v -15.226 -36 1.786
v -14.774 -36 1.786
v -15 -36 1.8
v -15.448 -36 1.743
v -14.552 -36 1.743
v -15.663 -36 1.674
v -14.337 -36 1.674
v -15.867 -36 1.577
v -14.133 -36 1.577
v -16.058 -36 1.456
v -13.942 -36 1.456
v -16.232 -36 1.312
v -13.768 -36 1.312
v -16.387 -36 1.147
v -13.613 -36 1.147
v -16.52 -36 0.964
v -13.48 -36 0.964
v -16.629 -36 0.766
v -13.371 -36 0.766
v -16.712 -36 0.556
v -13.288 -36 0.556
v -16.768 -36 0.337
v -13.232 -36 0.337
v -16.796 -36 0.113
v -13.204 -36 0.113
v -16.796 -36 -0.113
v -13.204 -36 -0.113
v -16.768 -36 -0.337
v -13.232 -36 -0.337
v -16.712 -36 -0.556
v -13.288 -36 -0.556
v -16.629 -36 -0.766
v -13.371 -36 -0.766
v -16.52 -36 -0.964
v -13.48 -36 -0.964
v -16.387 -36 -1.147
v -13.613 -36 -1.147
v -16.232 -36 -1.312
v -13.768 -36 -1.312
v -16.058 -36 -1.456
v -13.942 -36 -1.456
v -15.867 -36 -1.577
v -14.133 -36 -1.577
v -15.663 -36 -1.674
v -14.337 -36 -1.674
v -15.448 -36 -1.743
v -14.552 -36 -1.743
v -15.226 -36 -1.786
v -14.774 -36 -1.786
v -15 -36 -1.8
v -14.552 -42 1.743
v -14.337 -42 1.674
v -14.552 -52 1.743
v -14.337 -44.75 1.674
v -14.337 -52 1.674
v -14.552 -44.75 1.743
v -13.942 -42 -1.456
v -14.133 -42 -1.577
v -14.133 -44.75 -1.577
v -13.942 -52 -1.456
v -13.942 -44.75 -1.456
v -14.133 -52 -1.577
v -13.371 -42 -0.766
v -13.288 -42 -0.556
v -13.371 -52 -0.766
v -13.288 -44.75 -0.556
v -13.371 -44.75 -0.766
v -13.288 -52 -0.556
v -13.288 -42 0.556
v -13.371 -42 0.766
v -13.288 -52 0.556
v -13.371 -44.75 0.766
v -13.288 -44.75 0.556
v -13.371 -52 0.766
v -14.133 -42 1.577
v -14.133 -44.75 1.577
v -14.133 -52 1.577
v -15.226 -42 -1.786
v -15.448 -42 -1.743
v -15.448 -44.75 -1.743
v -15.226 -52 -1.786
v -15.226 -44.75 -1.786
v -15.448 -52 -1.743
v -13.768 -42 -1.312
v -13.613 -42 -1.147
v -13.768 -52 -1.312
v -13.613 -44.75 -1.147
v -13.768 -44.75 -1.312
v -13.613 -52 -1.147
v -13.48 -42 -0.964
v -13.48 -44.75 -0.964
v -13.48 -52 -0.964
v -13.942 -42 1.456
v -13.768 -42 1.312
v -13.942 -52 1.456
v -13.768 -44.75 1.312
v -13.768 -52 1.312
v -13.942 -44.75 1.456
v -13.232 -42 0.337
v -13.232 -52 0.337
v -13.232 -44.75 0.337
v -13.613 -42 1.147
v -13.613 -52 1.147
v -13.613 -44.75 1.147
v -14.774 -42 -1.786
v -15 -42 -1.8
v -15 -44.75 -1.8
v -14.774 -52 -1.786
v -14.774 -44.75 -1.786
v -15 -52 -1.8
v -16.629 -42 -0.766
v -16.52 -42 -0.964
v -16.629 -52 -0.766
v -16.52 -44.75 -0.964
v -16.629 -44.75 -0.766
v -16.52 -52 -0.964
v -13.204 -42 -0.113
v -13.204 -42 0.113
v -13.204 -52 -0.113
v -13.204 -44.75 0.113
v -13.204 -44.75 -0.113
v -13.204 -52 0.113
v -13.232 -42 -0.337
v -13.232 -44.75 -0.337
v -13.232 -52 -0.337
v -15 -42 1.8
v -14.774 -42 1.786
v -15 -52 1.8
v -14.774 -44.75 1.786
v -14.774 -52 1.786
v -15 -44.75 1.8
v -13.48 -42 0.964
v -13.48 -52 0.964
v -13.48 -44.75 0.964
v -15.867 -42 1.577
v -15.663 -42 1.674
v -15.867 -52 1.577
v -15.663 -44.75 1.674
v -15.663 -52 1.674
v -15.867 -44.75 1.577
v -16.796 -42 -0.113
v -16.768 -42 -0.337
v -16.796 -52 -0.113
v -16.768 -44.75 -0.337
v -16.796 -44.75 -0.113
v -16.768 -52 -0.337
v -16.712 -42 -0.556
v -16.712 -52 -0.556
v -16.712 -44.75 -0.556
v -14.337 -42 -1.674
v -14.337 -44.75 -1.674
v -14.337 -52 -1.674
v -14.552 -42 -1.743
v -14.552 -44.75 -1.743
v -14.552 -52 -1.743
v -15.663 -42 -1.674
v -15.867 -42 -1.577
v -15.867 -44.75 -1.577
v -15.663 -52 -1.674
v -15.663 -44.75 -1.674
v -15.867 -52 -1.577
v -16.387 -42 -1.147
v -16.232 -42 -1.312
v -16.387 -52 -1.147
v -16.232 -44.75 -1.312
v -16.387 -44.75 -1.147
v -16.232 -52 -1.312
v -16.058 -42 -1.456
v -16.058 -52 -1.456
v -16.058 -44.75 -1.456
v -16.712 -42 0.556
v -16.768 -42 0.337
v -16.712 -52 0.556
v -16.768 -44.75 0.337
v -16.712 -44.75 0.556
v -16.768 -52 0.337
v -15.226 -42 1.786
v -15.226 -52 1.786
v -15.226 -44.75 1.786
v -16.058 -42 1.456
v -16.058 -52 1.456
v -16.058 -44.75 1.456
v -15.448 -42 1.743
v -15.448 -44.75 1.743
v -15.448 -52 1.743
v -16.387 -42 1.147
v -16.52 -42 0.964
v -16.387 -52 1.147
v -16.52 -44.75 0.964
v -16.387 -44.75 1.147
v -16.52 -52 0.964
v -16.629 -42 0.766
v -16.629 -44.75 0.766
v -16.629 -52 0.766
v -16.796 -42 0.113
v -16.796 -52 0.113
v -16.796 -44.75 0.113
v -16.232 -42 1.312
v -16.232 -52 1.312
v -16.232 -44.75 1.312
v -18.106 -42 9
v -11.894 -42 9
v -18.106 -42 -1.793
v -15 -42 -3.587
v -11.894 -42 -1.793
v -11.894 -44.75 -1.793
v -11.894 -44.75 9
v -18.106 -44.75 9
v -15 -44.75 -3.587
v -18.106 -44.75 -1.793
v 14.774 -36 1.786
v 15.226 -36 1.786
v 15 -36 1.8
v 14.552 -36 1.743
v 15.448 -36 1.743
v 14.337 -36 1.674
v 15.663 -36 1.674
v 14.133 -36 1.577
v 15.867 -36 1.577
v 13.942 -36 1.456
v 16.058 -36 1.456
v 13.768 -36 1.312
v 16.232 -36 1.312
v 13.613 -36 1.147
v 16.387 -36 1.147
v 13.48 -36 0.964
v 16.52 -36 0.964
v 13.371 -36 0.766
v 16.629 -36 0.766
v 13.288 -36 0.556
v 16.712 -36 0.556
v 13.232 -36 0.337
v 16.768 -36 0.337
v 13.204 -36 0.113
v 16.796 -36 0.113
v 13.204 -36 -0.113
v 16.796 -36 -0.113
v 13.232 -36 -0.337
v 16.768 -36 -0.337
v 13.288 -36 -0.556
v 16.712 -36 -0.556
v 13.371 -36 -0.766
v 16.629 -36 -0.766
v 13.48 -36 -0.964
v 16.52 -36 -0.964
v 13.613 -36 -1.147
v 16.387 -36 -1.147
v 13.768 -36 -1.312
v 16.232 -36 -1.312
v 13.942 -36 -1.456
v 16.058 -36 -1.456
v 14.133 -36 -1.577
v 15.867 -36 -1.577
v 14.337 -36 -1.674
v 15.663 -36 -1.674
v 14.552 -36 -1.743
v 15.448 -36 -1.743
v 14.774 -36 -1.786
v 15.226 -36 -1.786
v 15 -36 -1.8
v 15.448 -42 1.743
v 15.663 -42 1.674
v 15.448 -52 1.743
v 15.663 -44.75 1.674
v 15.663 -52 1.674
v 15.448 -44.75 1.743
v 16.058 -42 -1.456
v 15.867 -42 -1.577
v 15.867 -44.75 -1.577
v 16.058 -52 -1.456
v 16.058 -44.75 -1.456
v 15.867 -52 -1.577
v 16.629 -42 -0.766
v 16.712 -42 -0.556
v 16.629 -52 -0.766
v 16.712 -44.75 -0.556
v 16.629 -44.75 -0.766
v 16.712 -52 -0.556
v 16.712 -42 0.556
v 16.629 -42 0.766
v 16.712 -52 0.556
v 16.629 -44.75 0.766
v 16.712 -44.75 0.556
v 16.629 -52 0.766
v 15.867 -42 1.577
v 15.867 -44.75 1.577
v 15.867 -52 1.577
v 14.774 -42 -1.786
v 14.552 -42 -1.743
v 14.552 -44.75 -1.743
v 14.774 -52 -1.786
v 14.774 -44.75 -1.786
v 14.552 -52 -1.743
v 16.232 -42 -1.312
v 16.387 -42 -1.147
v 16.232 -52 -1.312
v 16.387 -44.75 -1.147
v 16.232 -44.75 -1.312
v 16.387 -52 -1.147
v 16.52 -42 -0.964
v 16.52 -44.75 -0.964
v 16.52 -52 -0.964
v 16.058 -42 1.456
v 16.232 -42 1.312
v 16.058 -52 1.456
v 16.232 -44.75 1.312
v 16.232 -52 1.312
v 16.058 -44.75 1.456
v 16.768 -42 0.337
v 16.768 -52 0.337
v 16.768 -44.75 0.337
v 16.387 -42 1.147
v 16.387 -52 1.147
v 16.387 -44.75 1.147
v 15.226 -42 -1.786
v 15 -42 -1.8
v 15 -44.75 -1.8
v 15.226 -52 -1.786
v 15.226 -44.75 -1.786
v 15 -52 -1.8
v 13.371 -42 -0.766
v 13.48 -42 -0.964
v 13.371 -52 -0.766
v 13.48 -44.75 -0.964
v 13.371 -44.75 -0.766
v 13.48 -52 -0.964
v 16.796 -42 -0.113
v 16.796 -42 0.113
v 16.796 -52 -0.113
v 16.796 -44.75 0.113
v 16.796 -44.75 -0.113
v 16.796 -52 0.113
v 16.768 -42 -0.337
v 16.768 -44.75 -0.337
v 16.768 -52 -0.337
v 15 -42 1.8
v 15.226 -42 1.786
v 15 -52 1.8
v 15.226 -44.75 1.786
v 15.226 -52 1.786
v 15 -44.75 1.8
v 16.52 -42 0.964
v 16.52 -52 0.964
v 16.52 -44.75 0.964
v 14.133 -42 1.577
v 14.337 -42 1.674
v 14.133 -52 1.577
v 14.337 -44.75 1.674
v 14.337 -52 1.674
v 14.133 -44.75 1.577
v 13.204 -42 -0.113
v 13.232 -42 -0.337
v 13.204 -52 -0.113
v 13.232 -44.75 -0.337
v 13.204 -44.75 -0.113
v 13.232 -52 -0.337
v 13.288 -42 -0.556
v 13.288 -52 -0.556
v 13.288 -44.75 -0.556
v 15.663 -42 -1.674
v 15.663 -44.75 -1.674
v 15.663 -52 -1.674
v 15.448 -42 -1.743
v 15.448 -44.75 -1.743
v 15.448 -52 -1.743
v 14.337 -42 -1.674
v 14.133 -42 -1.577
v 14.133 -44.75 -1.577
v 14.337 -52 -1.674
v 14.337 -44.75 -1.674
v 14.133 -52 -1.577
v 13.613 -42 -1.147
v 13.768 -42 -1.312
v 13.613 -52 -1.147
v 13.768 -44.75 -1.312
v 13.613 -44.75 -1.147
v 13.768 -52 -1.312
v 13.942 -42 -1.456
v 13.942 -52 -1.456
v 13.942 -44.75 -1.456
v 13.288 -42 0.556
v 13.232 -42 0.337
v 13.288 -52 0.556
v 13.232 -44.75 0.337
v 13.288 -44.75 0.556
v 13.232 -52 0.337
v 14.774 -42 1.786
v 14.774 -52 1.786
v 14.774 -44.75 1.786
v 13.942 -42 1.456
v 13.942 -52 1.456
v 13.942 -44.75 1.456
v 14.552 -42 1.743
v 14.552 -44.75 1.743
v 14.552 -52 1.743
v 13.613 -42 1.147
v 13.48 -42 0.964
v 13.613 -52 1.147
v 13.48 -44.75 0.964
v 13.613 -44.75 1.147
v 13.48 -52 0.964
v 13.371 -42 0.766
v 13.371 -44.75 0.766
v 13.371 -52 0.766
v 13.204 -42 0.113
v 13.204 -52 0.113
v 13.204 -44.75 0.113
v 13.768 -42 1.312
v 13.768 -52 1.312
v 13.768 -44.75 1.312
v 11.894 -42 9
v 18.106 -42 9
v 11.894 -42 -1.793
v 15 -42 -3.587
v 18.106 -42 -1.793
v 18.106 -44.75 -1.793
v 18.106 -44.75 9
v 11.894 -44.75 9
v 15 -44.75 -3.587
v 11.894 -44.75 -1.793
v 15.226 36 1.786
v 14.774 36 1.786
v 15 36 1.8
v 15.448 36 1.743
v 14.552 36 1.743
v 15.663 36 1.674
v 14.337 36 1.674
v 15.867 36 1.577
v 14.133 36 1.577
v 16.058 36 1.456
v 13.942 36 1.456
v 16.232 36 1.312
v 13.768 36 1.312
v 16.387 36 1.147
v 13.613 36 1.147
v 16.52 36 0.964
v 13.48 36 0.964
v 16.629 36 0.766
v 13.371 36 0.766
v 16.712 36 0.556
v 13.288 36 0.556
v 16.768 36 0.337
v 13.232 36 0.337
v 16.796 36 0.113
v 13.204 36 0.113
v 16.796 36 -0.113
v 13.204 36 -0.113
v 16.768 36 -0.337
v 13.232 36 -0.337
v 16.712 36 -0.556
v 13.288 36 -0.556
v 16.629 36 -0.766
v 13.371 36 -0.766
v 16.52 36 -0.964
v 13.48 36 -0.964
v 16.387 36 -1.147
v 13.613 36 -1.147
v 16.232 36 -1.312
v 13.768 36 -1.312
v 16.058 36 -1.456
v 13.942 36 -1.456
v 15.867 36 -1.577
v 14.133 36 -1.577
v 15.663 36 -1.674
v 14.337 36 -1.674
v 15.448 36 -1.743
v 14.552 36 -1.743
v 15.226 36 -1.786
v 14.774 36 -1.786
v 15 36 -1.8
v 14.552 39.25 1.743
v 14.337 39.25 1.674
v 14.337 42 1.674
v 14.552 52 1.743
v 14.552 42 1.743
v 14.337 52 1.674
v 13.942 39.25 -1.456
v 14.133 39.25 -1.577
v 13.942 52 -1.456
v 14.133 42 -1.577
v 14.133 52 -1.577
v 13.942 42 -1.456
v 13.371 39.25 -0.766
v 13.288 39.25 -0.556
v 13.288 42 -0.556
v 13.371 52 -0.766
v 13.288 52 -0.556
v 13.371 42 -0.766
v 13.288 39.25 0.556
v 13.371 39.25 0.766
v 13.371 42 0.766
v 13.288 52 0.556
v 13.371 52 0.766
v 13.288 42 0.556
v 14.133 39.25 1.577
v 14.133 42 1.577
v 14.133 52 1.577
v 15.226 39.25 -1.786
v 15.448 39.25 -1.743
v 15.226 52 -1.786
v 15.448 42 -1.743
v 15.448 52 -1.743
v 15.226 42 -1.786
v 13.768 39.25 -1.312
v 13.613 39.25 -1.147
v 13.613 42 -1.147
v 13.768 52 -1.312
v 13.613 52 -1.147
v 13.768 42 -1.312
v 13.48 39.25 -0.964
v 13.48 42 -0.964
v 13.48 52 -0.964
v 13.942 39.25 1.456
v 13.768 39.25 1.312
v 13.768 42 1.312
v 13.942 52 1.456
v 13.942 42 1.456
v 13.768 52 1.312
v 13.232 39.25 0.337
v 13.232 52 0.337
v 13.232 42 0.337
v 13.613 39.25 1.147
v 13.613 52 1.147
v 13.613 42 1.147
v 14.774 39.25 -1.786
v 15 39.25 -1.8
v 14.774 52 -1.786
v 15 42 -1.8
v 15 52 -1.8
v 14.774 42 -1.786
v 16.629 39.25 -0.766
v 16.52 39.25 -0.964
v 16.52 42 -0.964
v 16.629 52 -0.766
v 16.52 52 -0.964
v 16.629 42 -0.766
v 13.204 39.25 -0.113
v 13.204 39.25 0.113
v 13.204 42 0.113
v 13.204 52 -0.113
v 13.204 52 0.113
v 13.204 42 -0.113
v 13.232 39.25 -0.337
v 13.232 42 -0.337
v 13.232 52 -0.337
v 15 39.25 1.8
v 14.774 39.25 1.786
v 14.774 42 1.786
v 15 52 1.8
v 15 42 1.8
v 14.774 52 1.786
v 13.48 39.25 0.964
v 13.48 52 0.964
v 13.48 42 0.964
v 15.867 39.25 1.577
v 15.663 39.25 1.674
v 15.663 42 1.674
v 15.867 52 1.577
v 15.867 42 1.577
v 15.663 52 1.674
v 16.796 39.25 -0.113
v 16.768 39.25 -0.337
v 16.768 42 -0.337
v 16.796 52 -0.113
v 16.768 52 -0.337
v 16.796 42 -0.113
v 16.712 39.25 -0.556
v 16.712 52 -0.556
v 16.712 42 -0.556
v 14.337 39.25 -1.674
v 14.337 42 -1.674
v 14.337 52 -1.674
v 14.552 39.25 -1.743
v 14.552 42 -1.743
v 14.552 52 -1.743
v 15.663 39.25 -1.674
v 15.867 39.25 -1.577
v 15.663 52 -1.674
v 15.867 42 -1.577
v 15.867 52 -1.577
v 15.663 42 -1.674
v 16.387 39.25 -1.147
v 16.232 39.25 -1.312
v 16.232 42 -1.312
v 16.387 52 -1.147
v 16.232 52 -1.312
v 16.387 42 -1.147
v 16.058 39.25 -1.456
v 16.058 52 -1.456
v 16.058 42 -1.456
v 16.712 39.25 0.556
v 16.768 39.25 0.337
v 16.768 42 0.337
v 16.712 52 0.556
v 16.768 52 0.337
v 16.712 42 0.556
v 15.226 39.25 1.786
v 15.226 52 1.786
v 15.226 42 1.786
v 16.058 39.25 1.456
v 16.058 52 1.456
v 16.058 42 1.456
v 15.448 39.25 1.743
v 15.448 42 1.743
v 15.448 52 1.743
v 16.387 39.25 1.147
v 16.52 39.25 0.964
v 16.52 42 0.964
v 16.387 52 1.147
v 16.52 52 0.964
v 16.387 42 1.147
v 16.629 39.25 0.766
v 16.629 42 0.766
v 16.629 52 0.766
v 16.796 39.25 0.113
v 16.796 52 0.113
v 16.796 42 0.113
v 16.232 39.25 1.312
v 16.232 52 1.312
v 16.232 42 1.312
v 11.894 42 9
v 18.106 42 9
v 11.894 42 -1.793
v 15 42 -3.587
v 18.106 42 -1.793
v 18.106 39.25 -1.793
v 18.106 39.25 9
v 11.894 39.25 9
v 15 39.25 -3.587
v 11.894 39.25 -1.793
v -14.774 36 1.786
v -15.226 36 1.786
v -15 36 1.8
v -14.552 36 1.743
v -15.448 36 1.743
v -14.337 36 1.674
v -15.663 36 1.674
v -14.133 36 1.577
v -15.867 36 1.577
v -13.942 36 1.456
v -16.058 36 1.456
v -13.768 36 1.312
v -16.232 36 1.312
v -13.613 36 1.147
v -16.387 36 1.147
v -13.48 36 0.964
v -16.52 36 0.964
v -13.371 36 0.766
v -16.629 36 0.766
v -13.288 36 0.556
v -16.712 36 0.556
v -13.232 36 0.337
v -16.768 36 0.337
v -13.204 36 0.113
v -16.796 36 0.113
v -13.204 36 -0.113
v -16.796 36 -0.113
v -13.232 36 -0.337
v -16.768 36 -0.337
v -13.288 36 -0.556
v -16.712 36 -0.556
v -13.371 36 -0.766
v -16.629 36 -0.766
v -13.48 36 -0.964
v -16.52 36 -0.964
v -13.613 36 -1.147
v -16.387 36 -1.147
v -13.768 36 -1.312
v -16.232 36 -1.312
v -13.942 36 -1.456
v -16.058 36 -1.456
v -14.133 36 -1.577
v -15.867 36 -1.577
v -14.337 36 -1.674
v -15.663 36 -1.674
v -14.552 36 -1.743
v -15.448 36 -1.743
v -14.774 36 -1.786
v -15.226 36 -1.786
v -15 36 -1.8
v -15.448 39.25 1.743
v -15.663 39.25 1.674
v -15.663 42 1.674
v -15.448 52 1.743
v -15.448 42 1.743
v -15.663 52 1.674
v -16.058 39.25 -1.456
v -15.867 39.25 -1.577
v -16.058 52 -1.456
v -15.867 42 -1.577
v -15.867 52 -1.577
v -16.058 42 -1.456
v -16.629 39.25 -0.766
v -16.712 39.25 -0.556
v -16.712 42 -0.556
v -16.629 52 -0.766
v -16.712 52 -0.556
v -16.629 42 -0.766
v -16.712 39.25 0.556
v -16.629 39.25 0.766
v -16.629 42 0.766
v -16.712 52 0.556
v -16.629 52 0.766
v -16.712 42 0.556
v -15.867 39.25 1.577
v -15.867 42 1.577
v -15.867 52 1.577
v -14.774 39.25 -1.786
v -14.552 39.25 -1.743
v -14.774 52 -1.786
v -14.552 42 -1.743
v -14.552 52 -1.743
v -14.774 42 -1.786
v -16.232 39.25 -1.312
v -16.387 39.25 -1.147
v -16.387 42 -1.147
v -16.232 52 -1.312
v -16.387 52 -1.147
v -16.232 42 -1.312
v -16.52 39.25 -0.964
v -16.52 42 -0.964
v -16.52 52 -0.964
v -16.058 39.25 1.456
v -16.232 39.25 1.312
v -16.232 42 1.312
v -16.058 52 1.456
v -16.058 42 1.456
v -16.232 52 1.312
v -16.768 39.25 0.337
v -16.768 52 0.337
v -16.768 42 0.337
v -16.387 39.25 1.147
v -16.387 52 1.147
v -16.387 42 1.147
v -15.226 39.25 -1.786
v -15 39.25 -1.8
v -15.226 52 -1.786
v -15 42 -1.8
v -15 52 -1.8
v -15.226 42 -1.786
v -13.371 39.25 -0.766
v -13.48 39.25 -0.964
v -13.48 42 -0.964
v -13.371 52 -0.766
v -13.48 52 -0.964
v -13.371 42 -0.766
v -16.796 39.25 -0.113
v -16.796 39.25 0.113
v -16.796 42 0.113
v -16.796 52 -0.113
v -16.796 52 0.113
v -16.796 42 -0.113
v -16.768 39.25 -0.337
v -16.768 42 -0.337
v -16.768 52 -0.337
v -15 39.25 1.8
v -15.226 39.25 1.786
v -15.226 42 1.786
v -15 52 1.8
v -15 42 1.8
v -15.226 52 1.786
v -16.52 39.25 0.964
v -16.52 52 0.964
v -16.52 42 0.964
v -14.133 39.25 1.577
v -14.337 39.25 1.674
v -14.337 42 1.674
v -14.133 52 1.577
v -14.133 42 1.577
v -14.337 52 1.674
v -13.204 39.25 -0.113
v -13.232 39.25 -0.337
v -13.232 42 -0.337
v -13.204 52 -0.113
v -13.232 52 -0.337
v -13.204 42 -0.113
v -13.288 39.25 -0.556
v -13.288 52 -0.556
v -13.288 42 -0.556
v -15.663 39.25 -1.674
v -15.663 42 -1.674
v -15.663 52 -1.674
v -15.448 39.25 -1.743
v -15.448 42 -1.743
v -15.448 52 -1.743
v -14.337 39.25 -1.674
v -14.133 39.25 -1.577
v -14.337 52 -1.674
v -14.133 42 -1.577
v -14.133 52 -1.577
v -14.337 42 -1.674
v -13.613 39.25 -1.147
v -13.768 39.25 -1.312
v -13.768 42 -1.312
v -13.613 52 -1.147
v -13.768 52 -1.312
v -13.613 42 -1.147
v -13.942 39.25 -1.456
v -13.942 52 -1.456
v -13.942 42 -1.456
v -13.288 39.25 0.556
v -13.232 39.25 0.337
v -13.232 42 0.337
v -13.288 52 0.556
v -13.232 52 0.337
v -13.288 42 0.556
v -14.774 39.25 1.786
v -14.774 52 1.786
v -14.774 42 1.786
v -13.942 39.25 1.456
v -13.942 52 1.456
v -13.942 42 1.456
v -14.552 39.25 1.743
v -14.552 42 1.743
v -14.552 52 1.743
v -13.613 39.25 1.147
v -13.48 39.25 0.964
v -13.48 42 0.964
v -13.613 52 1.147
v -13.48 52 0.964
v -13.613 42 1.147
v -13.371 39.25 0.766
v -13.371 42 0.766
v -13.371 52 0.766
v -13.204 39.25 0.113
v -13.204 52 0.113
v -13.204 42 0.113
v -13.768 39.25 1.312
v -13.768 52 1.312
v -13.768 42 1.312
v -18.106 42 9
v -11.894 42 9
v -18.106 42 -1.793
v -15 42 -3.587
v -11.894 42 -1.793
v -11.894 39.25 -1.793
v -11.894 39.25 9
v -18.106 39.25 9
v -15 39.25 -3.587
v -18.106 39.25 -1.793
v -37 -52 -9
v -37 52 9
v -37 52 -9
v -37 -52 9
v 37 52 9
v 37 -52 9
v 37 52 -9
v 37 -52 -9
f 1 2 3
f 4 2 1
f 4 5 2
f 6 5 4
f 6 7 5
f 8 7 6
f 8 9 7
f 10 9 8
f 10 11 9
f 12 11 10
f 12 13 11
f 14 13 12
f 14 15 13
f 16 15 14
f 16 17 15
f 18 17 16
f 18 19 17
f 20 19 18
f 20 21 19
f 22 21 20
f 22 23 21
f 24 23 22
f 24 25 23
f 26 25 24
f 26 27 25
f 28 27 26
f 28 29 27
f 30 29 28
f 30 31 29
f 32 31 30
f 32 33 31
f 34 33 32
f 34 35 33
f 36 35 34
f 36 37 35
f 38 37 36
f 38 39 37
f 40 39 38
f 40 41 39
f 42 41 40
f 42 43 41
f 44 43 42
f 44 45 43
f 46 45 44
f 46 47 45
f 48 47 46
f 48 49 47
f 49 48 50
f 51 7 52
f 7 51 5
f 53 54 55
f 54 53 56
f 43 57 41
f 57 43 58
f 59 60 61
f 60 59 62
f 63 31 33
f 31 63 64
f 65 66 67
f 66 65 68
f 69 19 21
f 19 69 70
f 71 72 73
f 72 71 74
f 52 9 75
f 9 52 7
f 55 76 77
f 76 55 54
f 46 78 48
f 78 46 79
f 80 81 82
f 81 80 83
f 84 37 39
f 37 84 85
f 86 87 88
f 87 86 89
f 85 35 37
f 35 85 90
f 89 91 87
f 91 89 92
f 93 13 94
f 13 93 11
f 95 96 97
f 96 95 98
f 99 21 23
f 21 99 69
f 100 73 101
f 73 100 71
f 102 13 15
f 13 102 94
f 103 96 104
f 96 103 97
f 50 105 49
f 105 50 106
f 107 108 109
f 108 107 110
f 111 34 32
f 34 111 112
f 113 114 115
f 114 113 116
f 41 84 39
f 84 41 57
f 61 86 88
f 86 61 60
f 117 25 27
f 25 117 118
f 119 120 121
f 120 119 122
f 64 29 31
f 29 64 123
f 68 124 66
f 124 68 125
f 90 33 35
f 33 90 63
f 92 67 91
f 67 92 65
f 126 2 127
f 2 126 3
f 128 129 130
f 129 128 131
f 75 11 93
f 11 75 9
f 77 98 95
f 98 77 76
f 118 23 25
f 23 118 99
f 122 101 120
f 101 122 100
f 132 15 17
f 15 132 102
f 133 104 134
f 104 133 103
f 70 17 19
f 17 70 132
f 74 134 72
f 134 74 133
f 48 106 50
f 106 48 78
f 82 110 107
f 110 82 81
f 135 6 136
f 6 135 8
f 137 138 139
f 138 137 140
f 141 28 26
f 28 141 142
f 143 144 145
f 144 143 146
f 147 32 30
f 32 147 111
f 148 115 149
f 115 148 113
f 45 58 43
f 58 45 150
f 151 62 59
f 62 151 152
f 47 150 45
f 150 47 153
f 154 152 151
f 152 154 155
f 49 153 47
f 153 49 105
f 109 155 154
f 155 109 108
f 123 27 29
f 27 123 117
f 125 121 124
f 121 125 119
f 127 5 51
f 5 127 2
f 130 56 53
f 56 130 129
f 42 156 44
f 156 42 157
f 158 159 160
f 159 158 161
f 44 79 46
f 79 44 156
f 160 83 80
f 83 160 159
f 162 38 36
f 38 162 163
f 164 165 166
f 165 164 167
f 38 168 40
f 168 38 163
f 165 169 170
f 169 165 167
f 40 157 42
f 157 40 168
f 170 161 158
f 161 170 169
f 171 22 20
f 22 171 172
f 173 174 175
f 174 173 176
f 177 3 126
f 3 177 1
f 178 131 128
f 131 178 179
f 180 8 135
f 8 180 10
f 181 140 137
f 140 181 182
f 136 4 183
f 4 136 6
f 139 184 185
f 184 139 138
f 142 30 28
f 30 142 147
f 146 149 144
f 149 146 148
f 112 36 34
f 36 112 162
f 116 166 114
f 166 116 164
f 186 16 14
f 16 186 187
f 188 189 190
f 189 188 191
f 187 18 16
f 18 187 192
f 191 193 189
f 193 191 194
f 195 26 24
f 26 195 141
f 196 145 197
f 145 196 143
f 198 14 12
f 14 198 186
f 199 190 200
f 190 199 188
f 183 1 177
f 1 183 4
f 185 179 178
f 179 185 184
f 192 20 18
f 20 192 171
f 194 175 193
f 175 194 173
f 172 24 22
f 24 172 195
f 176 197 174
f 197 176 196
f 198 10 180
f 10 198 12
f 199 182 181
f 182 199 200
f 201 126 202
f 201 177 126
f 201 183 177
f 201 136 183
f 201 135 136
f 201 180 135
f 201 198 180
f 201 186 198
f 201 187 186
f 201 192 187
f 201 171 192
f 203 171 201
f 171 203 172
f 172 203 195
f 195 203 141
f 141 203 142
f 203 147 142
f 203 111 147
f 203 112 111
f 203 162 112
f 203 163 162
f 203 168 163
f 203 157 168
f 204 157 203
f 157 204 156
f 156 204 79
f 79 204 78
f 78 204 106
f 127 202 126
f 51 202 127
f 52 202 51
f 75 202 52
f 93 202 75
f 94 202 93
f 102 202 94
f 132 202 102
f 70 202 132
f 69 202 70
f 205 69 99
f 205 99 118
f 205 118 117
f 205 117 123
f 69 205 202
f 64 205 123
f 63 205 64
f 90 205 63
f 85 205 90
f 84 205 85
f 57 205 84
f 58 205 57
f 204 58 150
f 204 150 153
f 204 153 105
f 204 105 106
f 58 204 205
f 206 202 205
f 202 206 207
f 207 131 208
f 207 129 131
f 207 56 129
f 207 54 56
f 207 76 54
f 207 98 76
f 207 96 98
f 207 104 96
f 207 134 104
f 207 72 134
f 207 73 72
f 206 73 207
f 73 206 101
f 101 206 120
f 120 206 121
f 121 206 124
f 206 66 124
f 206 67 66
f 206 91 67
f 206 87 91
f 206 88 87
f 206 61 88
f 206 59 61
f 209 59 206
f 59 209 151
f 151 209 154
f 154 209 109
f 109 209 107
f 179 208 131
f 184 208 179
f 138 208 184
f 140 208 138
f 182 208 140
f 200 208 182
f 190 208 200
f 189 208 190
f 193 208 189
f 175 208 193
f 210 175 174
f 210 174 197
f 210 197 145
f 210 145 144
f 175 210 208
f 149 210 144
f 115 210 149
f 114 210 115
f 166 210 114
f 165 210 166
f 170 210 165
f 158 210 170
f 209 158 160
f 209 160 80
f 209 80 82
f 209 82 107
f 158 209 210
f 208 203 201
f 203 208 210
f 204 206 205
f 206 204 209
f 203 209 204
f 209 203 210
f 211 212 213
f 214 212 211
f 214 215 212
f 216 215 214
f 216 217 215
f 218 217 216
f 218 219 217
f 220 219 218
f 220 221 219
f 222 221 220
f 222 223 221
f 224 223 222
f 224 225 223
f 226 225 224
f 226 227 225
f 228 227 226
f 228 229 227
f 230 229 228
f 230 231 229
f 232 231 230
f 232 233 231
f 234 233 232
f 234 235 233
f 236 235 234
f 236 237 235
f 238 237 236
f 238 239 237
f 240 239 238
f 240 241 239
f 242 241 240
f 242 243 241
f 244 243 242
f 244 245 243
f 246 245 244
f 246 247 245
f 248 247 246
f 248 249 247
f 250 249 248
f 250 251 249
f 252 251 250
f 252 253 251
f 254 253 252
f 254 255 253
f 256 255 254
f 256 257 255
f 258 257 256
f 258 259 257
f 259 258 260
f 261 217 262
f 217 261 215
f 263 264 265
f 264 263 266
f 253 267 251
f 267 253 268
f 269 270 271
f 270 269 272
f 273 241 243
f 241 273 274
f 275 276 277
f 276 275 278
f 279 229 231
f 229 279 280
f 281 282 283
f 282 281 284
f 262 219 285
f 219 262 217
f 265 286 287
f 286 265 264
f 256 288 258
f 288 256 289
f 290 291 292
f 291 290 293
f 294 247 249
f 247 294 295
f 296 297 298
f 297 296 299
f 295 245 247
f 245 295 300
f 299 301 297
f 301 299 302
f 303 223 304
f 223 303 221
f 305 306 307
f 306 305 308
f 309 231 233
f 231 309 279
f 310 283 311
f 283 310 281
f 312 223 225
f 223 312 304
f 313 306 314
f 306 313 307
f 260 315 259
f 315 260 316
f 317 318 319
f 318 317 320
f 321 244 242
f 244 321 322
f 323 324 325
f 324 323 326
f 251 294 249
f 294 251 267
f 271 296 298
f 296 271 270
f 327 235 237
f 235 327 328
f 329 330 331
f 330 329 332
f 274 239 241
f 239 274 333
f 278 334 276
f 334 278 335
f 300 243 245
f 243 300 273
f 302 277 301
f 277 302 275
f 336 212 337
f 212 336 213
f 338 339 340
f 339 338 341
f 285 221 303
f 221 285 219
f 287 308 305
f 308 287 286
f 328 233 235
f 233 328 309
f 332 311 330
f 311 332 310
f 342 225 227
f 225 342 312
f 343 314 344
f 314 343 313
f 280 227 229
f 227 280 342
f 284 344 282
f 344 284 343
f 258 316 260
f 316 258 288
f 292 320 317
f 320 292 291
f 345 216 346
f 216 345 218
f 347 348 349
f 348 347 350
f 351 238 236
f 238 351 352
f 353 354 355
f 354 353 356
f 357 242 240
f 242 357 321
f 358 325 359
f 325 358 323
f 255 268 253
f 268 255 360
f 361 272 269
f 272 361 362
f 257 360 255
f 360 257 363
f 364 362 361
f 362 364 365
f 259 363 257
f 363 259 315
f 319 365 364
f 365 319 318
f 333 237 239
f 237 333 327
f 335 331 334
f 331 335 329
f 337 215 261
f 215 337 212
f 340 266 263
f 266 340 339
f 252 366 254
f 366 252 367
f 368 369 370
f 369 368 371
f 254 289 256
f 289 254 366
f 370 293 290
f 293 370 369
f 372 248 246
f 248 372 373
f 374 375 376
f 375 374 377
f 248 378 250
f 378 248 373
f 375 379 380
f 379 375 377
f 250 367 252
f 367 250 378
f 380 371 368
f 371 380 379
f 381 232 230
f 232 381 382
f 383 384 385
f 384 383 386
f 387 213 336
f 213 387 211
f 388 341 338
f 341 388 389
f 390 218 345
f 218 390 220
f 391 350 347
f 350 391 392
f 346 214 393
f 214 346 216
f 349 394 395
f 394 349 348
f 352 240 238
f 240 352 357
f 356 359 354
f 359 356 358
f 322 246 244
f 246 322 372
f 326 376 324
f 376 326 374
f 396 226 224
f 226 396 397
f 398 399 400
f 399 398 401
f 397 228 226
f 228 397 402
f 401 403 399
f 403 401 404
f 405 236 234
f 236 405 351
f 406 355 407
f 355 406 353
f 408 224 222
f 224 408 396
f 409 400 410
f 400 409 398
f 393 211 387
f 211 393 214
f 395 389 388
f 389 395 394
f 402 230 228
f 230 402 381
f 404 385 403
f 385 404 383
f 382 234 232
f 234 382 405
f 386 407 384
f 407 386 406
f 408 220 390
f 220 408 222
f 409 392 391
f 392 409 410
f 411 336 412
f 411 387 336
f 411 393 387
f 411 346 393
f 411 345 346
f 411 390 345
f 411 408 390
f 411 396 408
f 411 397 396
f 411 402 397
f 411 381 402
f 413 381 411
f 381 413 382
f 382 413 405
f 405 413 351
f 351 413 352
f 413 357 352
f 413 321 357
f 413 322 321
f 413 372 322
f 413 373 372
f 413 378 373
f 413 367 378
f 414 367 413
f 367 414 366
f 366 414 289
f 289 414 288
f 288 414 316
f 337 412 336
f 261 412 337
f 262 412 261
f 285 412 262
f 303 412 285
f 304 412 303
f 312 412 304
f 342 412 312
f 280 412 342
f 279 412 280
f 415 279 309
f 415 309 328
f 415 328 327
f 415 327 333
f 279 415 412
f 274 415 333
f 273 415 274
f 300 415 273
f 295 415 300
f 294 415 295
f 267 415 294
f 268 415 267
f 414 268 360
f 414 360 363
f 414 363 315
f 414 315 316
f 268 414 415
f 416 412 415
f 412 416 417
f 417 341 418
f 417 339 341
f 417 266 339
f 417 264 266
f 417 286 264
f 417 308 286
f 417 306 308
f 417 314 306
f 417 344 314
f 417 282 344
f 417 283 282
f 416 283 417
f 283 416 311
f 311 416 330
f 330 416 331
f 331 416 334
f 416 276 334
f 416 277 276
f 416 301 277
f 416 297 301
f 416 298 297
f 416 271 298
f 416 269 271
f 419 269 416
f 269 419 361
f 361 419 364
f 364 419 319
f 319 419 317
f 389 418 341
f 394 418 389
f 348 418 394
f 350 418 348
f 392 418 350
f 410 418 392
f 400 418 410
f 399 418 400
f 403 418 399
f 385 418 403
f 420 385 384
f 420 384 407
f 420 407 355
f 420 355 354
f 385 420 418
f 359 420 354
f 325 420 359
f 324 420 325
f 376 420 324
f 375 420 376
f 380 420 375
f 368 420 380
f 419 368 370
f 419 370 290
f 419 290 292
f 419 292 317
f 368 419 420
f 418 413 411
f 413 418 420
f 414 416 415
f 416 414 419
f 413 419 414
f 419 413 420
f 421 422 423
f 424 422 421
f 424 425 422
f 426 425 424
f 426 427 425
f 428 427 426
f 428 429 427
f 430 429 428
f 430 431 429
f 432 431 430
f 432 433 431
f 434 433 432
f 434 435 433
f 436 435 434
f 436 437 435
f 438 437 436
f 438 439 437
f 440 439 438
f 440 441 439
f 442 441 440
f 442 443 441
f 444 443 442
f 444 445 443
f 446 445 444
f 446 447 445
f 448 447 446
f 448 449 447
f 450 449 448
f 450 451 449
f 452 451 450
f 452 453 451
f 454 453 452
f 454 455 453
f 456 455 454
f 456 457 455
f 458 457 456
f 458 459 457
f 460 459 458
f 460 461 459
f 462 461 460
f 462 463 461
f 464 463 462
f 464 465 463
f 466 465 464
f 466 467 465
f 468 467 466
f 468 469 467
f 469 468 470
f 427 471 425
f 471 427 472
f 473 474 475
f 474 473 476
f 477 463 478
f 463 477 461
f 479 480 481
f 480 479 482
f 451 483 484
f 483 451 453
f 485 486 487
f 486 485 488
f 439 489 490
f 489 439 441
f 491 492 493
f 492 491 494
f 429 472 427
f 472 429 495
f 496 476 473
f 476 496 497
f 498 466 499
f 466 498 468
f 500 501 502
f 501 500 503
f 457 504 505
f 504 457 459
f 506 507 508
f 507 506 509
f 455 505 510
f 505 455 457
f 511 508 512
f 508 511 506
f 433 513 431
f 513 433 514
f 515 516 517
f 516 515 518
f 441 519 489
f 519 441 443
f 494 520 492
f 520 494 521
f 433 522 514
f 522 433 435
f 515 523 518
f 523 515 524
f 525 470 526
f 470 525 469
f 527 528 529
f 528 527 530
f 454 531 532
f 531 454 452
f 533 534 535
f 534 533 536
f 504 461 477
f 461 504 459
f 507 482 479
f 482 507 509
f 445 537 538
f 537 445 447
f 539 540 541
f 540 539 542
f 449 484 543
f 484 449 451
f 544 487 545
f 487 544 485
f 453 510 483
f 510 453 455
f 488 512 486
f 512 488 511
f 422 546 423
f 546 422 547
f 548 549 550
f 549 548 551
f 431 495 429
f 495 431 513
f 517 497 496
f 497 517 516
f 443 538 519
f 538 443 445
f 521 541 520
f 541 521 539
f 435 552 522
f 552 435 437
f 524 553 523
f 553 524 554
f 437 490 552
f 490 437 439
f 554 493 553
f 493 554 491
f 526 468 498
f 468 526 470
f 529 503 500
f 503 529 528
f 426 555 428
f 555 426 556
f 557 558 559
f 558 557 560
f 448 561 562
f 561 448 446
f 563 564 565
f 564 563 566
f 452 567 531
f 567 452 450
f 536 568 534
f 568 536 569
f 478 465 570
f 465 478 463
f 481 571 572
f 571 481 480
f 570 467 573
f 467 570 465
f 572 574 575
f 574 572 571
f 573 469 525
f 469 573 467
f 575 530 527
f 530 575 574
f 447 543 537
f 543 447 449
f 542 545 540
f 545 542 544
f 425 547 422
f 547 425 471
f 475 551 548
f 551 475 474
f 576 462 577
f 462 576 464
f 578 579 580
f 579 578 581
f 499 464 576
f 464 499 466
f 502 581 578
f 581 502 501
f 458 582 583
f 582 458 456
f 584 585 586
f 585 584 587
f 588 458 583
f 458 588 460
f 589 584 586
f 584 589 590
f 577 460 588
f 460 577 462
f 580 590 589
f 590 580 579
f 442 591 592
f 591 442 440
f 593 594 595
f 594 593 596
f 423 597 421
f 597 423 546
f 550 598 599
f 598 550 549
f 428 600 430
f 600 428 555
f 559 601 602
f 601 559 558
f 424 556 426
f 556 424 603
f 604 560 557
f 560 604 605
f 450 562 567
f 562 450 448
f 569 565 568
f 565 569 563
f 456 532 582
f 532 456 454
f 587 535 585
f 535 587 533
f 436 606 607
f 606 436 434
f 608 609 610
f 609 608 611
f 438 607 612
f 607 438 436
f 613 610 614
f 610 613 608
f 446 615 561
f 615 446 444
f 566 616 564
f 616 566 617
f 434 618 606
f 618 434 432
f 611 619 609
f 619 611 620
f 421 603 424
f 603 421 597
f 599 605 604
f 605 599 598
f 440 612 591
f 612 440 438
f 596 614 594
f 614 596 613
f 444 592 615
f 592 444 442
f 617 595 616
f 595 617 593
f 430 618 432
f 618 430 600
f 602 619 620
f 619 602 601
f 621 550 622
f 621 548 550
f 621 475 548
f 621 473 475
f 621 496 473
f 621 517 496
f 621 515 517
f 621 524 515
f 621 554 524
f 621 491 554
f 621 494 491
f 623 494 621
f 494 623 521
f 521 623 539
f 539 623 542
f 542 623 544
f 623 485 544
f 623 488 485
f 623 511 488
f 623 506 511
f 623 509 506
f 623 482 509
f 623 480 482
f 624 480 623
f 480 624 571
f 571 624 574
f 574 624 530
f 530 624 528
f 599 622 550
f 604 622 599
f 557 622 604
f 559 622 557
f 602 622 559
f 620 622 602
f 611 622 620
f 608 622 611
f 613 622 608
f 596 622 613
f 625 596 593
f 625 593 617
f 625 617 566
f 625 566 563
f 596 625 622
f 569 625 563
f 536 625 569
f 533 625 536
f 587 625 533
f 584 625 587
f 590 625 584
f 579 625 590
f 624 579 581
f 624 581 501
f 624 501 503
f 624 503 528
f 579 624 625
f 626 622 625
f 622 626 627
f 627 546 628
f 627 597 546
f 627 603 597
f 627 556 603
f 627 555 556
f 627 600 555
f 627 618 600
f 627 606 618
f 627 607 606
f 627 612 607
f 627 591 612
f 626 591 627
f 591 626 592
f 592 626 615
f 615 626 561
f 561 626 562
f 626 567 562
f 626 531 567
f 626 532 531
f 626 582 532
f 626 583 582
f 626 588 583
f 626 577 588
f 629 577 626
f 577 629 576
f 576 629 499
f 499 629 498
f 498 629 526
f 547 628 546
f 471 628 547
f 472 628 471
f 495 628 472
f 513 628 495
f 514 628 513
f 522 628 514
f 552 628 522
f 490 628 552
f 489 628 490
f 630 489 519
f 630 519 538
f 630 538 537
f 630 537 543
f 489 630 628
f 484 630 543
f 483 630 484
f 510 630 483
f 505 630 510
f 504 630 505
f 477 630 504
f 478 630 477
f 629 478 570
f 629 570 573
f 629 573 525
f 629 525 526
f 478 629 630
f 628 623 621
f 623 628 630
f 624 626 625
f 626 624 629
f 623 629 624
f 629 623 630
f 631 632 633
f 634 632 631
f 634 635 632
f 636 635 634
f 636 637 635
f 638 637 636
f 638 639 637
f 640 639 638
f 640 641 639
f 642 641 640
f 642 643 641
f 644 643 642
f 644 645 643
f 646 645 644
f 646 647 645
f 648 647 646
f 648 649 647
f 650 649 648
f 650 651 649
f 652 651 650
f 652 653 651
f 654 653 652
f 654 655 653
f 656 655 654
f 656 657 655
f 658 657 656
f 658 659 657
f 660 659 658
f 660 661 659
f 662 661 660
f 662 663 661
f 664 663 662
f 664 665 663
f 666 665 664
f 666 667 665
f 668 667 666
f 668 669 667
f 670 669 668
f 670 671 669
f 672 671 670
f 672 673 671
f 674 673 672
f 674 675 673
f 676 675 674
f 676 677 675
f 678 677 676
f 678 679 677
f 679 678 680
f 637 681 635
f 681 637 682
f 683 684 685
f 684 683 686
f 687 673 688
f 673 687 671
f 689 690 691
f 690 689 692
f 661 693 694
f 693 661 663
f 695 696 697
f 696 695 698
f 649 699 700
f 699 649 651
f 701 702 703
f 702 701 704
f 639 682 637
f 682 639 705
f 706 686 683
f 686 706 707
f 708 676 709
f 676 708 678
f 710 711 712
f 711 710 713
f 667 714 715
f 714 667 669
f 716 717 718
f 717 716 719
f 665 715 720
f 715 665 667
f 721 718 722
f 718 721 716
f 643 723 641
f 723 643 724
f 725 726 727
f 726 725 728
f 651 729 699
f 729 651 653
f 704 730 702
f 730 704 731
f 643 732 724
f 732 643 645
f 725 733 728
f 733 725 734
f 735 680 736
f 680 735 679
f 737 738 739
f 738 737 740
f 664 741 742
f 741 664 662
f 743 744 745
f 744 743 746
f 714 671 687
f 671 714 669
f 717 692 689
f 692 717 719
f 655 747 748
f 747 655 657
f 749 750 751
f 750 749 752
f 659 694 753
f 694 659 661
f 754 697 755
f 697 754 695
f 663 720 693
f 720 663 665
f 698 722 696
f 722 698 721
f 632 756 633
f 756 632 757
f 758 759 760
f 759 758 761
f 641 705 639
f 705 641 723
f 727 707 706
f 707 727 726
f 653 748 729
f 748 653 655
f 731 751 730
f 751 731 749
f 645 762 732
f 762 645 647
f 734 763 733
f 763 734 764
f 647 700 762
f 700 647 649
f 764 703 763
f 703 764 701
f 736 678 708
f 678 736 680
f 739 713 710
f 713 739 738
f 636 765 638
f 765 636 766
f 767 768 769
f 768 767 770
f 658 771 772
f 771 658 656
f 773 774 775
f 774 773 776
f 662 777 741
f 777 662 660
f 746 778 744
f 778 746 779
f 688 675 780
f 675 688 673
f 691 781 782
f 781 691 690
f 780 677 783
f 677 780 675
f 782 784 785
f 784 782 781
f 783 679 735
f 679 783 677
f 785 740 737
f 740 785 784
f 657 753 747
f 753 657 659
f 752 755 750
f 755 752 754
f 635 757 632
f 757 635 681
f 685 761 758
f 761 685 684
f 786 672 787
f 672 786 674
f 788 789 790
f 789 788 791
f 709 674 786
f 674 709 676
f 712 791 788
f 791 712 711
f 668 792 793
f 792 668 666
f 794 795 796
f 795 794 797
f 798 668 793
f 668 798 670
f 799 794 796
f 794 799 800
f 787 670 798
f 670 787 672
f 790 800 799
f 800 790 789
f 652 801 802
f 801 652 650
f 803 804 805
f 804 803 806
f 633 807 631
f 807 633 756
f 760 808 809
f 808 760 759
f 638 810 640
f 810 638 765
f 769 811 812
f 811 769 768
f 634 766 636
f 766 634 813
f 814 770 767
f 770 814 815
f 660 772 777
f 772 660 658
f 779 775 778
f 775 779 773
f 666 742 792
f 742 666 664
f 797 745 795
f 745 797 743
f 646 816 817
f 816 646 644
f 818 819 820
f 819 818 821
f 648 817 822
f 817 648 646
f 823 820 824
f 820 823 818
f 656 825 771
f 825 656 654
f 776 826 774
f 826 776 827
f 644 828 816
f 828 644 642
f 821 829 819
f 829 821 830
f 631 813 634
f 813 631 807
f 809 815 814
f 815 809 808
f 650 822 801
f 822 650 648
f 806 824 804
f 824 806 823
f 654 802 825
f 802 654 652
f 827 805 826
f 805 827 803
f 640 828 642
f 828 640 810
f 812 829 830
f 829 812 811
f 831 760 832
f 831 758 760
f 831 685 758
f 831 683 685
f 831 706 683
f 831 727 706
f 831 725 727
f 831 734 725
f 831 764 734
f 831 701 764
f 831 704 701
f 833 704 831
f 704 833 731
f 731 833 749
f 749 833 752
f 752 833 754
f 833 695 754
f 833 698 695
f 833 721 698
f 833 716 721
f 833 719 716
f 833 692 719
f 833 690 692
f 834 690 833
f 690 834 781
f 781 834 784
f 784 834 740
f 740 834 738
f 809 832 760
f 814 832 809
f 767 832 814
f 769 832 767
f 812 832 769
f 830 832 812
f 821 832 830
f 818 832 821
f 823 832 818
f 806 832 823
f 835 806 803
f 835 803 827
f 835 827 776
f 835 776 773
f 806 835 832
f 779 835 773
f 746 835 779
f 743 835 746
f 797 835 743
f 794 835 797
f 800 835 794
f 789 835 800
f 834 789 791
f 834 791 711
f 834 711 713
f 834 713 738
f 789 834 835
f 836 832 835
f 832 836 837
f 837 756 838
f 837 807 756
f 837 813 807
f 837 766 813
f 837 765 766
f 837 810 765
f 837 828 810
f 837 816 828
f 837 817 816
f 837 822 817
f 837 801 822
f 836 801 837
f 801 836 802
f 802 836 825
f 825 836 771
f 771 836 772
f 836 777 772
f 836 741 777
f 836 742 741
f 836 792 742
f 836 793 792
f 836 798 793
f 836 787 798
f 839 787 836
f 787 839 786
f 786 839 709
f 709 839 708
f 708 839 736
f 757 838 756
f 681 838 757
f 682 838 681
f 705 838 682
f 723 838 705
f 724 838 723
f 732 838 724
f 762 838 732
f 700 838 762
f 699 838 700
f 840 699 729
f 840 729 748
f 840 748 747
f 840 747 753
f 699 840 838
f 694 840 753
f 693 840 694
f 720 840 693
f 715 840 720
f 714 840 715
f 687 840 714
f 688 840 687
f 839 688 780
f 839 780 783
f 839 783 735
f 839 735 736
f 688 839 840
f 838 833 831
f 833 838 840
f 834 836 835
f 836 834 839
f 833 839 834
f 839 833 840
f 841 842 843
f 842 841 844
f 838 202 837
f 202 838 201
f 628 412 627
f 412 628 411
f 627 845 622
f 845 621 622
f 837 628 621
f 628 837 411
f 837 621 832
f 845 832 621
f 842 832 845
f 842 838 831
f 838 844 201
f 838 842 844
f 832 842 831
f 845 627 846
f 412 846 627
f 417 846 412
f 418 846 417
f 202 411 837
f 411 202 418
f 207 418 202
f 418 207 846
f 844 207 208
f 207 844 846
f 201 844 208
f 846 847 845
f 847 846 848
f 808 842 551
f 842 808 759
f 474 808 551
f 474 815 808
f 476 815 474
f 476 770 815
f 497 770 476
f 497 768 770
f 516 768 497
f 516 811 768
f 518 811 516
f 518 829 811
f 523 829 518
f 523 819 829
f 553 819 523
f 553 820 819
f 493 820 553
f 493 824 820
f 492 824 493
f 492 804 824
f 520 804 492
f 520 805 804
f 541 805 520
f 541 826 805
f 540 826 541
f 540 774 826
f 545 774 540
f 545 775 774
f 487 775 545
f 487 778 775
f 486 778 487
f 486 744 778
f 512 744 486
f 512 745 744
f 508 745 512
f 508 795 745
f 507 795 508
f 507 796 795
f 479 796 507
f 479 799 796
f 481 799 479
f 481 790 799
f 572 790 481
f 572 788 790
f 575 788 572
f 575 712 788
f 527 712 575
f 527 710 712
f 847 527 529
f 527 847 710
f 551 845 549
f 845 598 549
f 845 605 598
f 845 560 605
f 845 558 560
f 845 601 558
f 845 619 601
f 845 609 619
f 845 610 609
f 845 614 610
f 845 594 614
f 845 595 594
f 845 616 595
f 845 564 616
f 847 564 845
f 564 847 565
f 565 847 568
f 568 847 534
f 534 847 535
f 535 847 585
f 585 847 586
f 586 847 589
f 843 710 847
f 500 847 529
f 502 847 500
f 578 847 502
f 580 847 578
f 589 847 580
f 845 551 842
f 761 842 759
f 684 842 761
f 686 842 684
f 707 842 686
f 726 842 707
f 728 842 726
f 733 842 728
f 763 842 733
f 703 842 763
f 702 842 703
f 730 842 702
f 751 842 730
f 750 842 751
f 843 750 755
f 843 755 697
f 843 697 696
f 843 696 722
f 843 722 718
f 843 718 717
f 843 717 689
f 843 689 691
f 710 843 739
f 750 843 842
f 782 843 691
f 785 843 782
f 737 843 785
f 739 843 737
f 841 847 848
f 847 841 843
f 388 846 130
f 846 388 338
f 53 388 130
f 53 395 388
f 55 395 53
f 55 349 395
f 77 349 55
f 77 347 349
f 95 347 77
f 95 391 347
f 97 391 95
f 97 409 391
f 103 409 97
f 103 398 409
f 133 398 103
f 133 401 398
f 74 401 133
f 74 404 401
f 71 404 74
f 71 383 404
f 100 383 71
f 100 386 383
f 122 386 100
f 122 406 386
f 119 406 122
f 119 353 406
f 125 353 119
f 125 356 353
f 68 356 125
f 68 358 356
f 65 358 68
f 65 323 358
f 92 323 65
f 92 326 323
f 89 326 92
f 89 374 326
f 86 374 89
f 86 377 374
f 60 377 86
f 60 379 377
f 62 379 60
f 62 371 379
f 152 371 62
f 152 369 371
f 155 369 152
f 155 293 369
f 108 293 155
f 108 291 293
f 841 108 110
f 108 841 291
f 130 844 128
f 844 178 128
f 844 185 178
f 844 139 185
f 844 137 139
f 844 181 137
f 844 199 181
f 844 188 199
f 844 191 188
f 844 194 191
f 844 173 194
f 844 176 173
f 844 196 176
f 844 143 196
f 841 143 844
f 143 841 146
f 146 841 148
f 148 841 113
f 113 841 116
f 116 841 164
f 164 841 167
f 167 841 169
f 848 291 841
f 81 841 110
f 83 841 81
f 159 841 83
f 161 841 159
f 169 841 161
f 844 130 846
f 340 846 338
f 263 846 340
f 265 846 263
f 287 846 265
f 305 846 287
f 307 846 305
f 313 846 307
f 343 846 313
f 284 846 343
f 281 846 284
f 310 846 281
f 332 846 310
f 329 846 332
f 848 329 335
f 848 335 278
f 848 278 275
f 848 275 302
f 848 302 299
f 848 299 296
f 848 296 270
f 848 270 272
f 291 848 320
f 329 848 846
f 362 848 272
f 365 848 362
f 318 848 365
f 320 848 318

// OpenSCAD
$fn = 50;


difference() {
	union() {
		translate(v = [-37.0000000000, -52.0000000000, -9.0000000000]) {
			cube(size = [74, 104, 18]);
		}
	}
	union() {
		translate(v = [-15.0000000000, -57.0000000000, 0]) {
			rotate(a = [0, 90, -90]) {
				difference() {
					union() {
						#translate(v = [0, 0, -21.0000000000]) {
							cylinder(h = 21, r = 1.5000000000);
						}
						#translate(v = [0, 0, -1.9000000000]) {
							cylinder(h = 1.9000000000, r1 = 1.8000000000, r2 = 3.6000000000);
						}
						#translate(v = [0, 0, -21.0000000000]) {
							cylinder(h = 21, r = 1.8000000000);
						}
						#translate(v = [0, 0, -21.0000000000]) {
							cylinder(h = 21, r = 1.5000000000);
						}
					}
					union();
				}
			}
		}
		translate(v = [-15.0000000000, -42.0000000000, 0]) {
			rotate(a = [90, 90, 0]) {
				difference() {
					union() {
						#linear_extrude(height = 2.7500000000) {
							polygon(points = [[3.5870000000, 0.0000000000], [1.7935000000, 3.1064331234], [-1.7935000000, 3.1064331234], [-3.5870000000, 0.0000000000], [-1.7935000000, -3.1064331234], [1.7935000000, -3.1064331234]]);
						}
					}
					union();
				}
			}
		}
		translate(v = [-15.0000000000, -42.0000000000, 3]) {
			rotate(a = [90, 90, 0]) {
				difference() {
					union() {
						#linear_extrude(height = 2.7500000000) {
							polygon(points = [[3.5870000000, 0.0000000000], [1.7935000000, 3.1064331234], [-1.7935000000, 3.1064331234], [-3.5870000000, 0.0000000000], [-1.7935000000, -3.1064331234], [1.7935000000, -3.1064331234]]);
						}
					}
					union();
				}
			}
		}
		translate(v = [-15.0000000000, -42.0000000000, 6]) {
			rotate(a = [90, 90, 0]) {
				difference() {
					union() {
						#linear_extrude(height = 2.7500000000) {
							polygon(points = [[3.5870000000, 0.0000000000], [1.7935000000, 3.1064331234], [-1.7935000000, 3.1064331234], [-3.5870000000, 0.0000000000], [-1.7935000000, -3.1064331234], [1.7935000000, -3.1064331234]]);
						}
					}
					union();
				}
			}
		}
		translate(v = [-15.0000000000, -42.0000000000, 9]) {
			rotate(a = [90, 90, 0]) {
				difference() {
					union() {
						#linear_extrude(height = 2.7500000000) {
							polygon(points = [[3.5870000000, 0.0000000000], [1.7935000000, 3.1064331234], [-1.7935000000, 3.1064331234], [-3.5870000000, 0.0000000000], [-1.7935000000, -3.1064331234], [1.7935000000, -3.1064331234]]);
						}
					}
					union();
				}
			}
		}
		translate(v = [-15.0000000000, -42.0000000000, 12]) {
			rotate(a = [90, 90, 0]) {
				difference() {
					union() {
						#linear_extrude(height = 2.7500000000) {
							polygon(points = [[3.5870000000, 0.0000000000], [1.7935000000, 3.1064331234], [-1.7935000000, 3.1064331234], [-3.5870000000, 0.0000000000], [-1.7935000000, -3.1064331234], [1.7935000000, -3.1064331234]]);
						}
					}
					union();
				}
			}
		}
		translate(v = [-15.0000000000, -42.0000000000, 15]) {
			rotate(a = [90, 90, 0]) {
				difference() {
					union() {
						#linear_extrude(height = 2.7500000000) {
							polygon(points = [[3.5870000000, 0.0000000000], [1.7935000000, 3.1064331234], [-1.7935000000, 3.1064331234], [-3.5870000000, 0.0000000000], [-1.7935000000, -3.1064331234], [1.7935000000, -3.1064331234]]);
						}
					}
					union();
				}
			}
		}
		translate(v = [15.0000000000, -57.0000000000, 0]) {
			rotate(a = [0, 90, -90]) {
				difference() {
					union() {
						#translate(v = [0, 0, -21.0000000000]) {
							cylinder(h = 21, r = 1.5000000000);
						}
						#translate(v = [0, 0, -1.9000000000]) {
							cylinder(h = 1.9000000000, r1 = 1.8000000000, r2 = 3.6000000000);
						}
						#translate(v = [0, 0, -21.0000000000]) {
							cylinder(h = 21, r = 1.8000000000);
						}
						#translate(v = [0, 0, -21.0000000000]) {
							cylinder(h = 21, r = 1.5000000000);
						}
					}
					union();
				}
			}
		}
		translate(v = [15.0000000000, -42.0000000000, 0]) {
			rotate(a = [90, 90, 0]) {
				difference() {
					union() {
						#linear_extrude(height = 2.7500000000) {
							polygon(points = [[3.5870000000, 0.0000000000], [1.7935000000, 3.1064331234], [-1.7935000000, 3.1064331234], [-3.5870000000, 0.0000000000], [-1.7935000000, -3.1064331234], [1.7935000000, -3.1064331234]]);
						}
					}
					union();
				}
			}
		}
		translate(v = [15.0000000000, -42.0000000000, 3]) {
			rotate(a = [90, 90, 0]) {
				difference() {
					union() {
						#linear_extrude(height = 2.7500000000) {
							polygon(points = [[3.5870000000, 0.0000000000], [1.7935000000, 3.1064331234], [-1.7935000000, 3.1064331234], [-3.5870000000, 0.0000000000], [-1.7935000000, -3.1064331234], [1.7935000000, -3.1064331234]]);
						}
					}
					union();
				}
			}
		}
		translate(v = [15.0000000000, -42.0000000000, 6]) {
			rotate(a = [90, 90, 0]) {
				difference() {
					union() {
						#linear_extrude(height = 2.7500000000) {
							polygon(points = [[3.5870000000, 0.0000000000], [1.7935000000, 3.1064331234], [-1.7935000000, 3.1064331234], [-3.5870000000, 0.0000000000], [-1.7935000000, -3.1064331234], [1.7935000000, -3.1064331234]]);
						}
					}
					union();
				}
			}
		}
		translate(v = [15.0000000000, -42.0000000000, 9]) {
			rotate(a = [90, 90, 0]) {
				difference() {
					union() {
						#linear_extrude(height = 2.7500000000) {
							polygon(points = [[3.5870000000, 0.0000000000], [1.7935000000, 3.1064331234], [-1.7935000000, 3.1064331234], [-3.5870000000, 0.0000000000], [-1.7935000000, -3.1064331234], [1.7935000000, -3.1064331234]]);
						}
					}
					union();
				}
			}
		}
		translate(v = [15.0000000000, -42.0000000000, 12]) {
			rotate(a = [90, 90, 0]) {
				difference() {
					union() {
						#linear_extrude(height = 2.7500000000) {
							polygon(points = [[3.5870000000, 0.0000000000], [1.7935000000, 3.1064331234], [-1.7935000000, 3.1064331234], [-3.5870000000, 0.0000000000], [-1.7935000000, -3.1064331234], [1.7935000000, -3.1064331234]]);
						}
					}
					union();
				}
			}
		}
		translate(v = [15.0000000000, -42.0000000000, 15]) {
			rotate(a = [90, 90, 0]) {
				difference() {
					union() {
						#linear_extrude(height = 2.7500000000) {
							polygon(points = [[3.5870000000, 0.0000000000], [1.7935000000, 3.1064331234], [-1.7935000000, 3.1064331234], [-3.5870000000, 0.0000000000], [-1.7935000000, -3.1064331234], [1.7935000000, -3.1064331234]]);
						}
					}
					union();
				}
			}
		}
		translate(v = [15.0000000000, 57.0000000000, 0]) {
			rotate(a = [0, 90, 90]) {
				difference() {
					union() {
						#translate(v = [0, 0, -21.0000000000]) {
							cylinder(h = 21, r = 1.5000000000);
						}
						#translate(v = [0, 0, -1.9000000000]) {
							cylinder(h = 1.9000000000, r1 = 1.8000000000, r2 = 3.6000000000);
						}
						#translate(v = [0, 0, -21.0000000000]) {
							cylinder(h = 21, r = 1.8000000000);
						}
						#translate(v = [0, 0, -21.0000000000]) {
							cylinder(h = 21, r = 1.5000000000);
						}
					}
					union();
				}
			}
		}
		translate(v = [15.0000000000, 42.0000000000, 0]) {
			rotate(a = [90, 90, 0]) {
				difference() {
					union() {
						#linear_extrude(height = 2.7500000000) {
							polygon(points = [[3.5870000000, 0.0000000000], [1.7935000000, 3.1064331234], [-1.7935000000, 3.1064331234], [-3.5870000000, 0.0000000000], [-1.7935000000, -3.1064331234], [1.7935000000, -3.1064331234]]);
						}
					}
					union();
				}
			}
		}
		translate(v = [15.0000000000, 42.0000000000, 3]) {
			rotate(a = [90, 90, 0]) {
				difference() {
					union() {
						#linear_extrude(height = 2.7500000000) {
							polygon(points = [[3.5870000000, 0.0000000000], [1.7935000000, 3.1064331234], [-1.7935000000, 3.1064331234], [-3.5870000000, 0.0000000000], [-1.7935000000, -3.1064331234], [1.7935000000, -3.1064331234]]);
						}
					}
					union();
				}
			}
		}
		translate(v = [15.0000000000, 42.0000000000, 6]) {
			rotate(a = [90, 90, 0]) {
				difference() {
					union() {
						#linear_extrude(height = 2.7500000000) {
							polygon(points = [[3.5870000000, 0.0000000000], [1.7935000000, 3.1064331234], [-1.7935000000, 3.1064331234], [-3.5870000000, 0.0000000000], [-1.7935000000, -3.1064331234], [1.7935000000, -3.1064331234]]);
						}
					}
					union();
				}
			}
		}
		translate(v = [15.0000000000, 42.0000000000, 9]) {
			rotate(a = [90, 90, 0]) {
				difference() {
					union() {
						#linear_extrude(height = 2.7500000000) {
							polygon(points = [[3.5870000000, 0.0000000000], [1.7935000000, 3.1064331234], [-1.7935000000, 3.1064331234], [-3.5870000000, 0.0000000000], [-1.7935000000, -3.1064331234], [1.7935000000, -3.1064331234]]);
						}
					}
					union();
				}
			}
		}
		translate(v = [15.0000000000, 42.0000000000, 12]) {
			rotate(a = [90, 90, 0]) {
				difference() {
					union() {
						#linear_extrude(height = 2.7500000000) {
							polygon(points = [[3.5870000000, 0.0000000000], [1.7935000000, 3.1064331234], [-1.7935000000, 3.1064331234], [-3.5870000000, 0.0000000000], [-1.7935000000, -3.1064331234], [1.7935000000, -3.1064331234]]);
						}
					}
					union();
				}
			}
		}
		translate(v = [15.0000000000, 42.0000000000, 15]) {
			rotate(a = [90, 90, 0]) {
				difference() {
					union() {
						#linear_extrude(height = 2.7500000000) {
							polygon(points = [[3.5870000000, 0.0000000000], [1.7935000000, 3.1064331234], [-1.7935000000, 3.1064331234], [-3.5870000000, 0.0000000000], [-1.7935000000, -3.1064331234], [1.7935000000, -3.1064331234]]);
						}
					}
					union();
				}
			}
		}
		translate(v = [-15.0000000000, 57.0000000000, 0]) {
			rotate(a = [0, 90, 90]) {
				difference() {
					union() {
						#translate(v = [0, 0, -21.0000000000]) {
							cylinder(h = 21, r = 1.5000000000);
						}
						#translate(v = [0, 0, -1.9000000000]) {
							cylinder(h = 1.9000000000, r1 = 1.8000000000, r2 = 3.6000000000);
						}
						#translate(v = [0, 0, -21.0000000000]) {
							cylinder(h = 21, r = 1.8000000000);
						}
						#translate(v = [0, 0, -21.0000000000]) {
							cylinder(h = 21, r = 1.5000000000);
						}
					}
					union();
				}
			}
		}
		translate(v = [-15.0000000000, 42.0000000000, 0]) {
			rotate(a = [90, 90, 0]) {
				difference() {
					union() {
						#linear_extrude(height = 2.7500000000) {
							polygon(points = [[3.5870000000, 0.0000000000], [1.7935000000, 3.1064331234], [-1.7935000000, 3.1064331234], [-3.5870000000, 0.0000000000], [-1.7935000000, -3.1064331234], [1.7935000000, -3.1064331234]]);
						}
					}
					union();
				}
			}
		}
		translate(v = [-15.0000000000, 42.0000000000, 3]) {
			rotate(a = [90, 90, 0]) {
				difference() {
					union() {
						#linear_extrude(height = 2.7500000000) {
							polygon(points = [[3.5870000000, 0.0000000000], [1.7935000000, 3.1064331234], [-1.7935000000, 3.1064331234], [-3.5870000000, 0.0000000000], [-1.7935000000, -3.1064331234], [1.7935000000, -3.1064331234]]);
						}
					}
					union();
				}
			}
		}
		translate(v = [-15.0000000000, 42.0000000000, 6]) {
			rotate(a = [90, 90, 0]) {
				difference() {
					union() {
						#linear_extrude(height = 2.7500000000) {
							polygon(points = [[3.5870000000, 0.0000000000], [1.7935000000, 3.1064331234], [-1.7935000000, 3.1064331234], [-3.5870000000, 0.0000000000], [-1.7935000000, -3.1064331234], [1.7935000000, -3.1064331234]]);
						}
					}
					union();
				}
			}
		}
		translate(v = [-15.0000000000, 42.0000000000, 9]) {
			rotate(a = [90, 90, 0]) {
				difference() {
					union() {
						#linear_extrude(height = 2.7500000000) {
							polygon(points = [[3.5870000000, 0.0000000000], [1.7935000000, 3.1064331234], [-1.7935000000, 3.1064331234], [-3.5870000000, 0.0000000000], [-1.7935000000, -3.1064331234], [1.7935000000, -3.1064331234]]);
						}
					}
					union();
				}
			}
		}
		translate(v = [-15.0000000000, 42.0000000000, 12]) {
			rotate(a = [90, 90, 0]) {
				difference() {
					union() {
						#linear_extrude(height = 2.7500000000) {
							polygon(points = [[3.5870000000, 0.0000000000], [1.7935000000, 3.1064331234], [-1.7935000000, 3.1064331234], [-3.5870000000, 0.0000000000], [-1.7935000000, -3.1064331234], [1.7935000000, -3.1064331234]]);
						}
					}
					union();
				}
			}
		}
		translate(v = [-15.0000000000, 42.0000000000, 15]) {
			rotate(a = [90, 90, 0]) {
				difference() {
					union() {
						#linear_extrude(height = 2.7500000000) {
							polygon(points = [[3.5870000000, 0.0000000000], [1.7935000000, 3.1064331234], [-1.7935000000, 3.1064331234], [-3.5870000000, 0.0000000000], [-1.7935000000, -3.1064331234], [1.7935000000, -3.1064331234]]);
						}
					}
					union();
				}
			}
		}
	}
}
